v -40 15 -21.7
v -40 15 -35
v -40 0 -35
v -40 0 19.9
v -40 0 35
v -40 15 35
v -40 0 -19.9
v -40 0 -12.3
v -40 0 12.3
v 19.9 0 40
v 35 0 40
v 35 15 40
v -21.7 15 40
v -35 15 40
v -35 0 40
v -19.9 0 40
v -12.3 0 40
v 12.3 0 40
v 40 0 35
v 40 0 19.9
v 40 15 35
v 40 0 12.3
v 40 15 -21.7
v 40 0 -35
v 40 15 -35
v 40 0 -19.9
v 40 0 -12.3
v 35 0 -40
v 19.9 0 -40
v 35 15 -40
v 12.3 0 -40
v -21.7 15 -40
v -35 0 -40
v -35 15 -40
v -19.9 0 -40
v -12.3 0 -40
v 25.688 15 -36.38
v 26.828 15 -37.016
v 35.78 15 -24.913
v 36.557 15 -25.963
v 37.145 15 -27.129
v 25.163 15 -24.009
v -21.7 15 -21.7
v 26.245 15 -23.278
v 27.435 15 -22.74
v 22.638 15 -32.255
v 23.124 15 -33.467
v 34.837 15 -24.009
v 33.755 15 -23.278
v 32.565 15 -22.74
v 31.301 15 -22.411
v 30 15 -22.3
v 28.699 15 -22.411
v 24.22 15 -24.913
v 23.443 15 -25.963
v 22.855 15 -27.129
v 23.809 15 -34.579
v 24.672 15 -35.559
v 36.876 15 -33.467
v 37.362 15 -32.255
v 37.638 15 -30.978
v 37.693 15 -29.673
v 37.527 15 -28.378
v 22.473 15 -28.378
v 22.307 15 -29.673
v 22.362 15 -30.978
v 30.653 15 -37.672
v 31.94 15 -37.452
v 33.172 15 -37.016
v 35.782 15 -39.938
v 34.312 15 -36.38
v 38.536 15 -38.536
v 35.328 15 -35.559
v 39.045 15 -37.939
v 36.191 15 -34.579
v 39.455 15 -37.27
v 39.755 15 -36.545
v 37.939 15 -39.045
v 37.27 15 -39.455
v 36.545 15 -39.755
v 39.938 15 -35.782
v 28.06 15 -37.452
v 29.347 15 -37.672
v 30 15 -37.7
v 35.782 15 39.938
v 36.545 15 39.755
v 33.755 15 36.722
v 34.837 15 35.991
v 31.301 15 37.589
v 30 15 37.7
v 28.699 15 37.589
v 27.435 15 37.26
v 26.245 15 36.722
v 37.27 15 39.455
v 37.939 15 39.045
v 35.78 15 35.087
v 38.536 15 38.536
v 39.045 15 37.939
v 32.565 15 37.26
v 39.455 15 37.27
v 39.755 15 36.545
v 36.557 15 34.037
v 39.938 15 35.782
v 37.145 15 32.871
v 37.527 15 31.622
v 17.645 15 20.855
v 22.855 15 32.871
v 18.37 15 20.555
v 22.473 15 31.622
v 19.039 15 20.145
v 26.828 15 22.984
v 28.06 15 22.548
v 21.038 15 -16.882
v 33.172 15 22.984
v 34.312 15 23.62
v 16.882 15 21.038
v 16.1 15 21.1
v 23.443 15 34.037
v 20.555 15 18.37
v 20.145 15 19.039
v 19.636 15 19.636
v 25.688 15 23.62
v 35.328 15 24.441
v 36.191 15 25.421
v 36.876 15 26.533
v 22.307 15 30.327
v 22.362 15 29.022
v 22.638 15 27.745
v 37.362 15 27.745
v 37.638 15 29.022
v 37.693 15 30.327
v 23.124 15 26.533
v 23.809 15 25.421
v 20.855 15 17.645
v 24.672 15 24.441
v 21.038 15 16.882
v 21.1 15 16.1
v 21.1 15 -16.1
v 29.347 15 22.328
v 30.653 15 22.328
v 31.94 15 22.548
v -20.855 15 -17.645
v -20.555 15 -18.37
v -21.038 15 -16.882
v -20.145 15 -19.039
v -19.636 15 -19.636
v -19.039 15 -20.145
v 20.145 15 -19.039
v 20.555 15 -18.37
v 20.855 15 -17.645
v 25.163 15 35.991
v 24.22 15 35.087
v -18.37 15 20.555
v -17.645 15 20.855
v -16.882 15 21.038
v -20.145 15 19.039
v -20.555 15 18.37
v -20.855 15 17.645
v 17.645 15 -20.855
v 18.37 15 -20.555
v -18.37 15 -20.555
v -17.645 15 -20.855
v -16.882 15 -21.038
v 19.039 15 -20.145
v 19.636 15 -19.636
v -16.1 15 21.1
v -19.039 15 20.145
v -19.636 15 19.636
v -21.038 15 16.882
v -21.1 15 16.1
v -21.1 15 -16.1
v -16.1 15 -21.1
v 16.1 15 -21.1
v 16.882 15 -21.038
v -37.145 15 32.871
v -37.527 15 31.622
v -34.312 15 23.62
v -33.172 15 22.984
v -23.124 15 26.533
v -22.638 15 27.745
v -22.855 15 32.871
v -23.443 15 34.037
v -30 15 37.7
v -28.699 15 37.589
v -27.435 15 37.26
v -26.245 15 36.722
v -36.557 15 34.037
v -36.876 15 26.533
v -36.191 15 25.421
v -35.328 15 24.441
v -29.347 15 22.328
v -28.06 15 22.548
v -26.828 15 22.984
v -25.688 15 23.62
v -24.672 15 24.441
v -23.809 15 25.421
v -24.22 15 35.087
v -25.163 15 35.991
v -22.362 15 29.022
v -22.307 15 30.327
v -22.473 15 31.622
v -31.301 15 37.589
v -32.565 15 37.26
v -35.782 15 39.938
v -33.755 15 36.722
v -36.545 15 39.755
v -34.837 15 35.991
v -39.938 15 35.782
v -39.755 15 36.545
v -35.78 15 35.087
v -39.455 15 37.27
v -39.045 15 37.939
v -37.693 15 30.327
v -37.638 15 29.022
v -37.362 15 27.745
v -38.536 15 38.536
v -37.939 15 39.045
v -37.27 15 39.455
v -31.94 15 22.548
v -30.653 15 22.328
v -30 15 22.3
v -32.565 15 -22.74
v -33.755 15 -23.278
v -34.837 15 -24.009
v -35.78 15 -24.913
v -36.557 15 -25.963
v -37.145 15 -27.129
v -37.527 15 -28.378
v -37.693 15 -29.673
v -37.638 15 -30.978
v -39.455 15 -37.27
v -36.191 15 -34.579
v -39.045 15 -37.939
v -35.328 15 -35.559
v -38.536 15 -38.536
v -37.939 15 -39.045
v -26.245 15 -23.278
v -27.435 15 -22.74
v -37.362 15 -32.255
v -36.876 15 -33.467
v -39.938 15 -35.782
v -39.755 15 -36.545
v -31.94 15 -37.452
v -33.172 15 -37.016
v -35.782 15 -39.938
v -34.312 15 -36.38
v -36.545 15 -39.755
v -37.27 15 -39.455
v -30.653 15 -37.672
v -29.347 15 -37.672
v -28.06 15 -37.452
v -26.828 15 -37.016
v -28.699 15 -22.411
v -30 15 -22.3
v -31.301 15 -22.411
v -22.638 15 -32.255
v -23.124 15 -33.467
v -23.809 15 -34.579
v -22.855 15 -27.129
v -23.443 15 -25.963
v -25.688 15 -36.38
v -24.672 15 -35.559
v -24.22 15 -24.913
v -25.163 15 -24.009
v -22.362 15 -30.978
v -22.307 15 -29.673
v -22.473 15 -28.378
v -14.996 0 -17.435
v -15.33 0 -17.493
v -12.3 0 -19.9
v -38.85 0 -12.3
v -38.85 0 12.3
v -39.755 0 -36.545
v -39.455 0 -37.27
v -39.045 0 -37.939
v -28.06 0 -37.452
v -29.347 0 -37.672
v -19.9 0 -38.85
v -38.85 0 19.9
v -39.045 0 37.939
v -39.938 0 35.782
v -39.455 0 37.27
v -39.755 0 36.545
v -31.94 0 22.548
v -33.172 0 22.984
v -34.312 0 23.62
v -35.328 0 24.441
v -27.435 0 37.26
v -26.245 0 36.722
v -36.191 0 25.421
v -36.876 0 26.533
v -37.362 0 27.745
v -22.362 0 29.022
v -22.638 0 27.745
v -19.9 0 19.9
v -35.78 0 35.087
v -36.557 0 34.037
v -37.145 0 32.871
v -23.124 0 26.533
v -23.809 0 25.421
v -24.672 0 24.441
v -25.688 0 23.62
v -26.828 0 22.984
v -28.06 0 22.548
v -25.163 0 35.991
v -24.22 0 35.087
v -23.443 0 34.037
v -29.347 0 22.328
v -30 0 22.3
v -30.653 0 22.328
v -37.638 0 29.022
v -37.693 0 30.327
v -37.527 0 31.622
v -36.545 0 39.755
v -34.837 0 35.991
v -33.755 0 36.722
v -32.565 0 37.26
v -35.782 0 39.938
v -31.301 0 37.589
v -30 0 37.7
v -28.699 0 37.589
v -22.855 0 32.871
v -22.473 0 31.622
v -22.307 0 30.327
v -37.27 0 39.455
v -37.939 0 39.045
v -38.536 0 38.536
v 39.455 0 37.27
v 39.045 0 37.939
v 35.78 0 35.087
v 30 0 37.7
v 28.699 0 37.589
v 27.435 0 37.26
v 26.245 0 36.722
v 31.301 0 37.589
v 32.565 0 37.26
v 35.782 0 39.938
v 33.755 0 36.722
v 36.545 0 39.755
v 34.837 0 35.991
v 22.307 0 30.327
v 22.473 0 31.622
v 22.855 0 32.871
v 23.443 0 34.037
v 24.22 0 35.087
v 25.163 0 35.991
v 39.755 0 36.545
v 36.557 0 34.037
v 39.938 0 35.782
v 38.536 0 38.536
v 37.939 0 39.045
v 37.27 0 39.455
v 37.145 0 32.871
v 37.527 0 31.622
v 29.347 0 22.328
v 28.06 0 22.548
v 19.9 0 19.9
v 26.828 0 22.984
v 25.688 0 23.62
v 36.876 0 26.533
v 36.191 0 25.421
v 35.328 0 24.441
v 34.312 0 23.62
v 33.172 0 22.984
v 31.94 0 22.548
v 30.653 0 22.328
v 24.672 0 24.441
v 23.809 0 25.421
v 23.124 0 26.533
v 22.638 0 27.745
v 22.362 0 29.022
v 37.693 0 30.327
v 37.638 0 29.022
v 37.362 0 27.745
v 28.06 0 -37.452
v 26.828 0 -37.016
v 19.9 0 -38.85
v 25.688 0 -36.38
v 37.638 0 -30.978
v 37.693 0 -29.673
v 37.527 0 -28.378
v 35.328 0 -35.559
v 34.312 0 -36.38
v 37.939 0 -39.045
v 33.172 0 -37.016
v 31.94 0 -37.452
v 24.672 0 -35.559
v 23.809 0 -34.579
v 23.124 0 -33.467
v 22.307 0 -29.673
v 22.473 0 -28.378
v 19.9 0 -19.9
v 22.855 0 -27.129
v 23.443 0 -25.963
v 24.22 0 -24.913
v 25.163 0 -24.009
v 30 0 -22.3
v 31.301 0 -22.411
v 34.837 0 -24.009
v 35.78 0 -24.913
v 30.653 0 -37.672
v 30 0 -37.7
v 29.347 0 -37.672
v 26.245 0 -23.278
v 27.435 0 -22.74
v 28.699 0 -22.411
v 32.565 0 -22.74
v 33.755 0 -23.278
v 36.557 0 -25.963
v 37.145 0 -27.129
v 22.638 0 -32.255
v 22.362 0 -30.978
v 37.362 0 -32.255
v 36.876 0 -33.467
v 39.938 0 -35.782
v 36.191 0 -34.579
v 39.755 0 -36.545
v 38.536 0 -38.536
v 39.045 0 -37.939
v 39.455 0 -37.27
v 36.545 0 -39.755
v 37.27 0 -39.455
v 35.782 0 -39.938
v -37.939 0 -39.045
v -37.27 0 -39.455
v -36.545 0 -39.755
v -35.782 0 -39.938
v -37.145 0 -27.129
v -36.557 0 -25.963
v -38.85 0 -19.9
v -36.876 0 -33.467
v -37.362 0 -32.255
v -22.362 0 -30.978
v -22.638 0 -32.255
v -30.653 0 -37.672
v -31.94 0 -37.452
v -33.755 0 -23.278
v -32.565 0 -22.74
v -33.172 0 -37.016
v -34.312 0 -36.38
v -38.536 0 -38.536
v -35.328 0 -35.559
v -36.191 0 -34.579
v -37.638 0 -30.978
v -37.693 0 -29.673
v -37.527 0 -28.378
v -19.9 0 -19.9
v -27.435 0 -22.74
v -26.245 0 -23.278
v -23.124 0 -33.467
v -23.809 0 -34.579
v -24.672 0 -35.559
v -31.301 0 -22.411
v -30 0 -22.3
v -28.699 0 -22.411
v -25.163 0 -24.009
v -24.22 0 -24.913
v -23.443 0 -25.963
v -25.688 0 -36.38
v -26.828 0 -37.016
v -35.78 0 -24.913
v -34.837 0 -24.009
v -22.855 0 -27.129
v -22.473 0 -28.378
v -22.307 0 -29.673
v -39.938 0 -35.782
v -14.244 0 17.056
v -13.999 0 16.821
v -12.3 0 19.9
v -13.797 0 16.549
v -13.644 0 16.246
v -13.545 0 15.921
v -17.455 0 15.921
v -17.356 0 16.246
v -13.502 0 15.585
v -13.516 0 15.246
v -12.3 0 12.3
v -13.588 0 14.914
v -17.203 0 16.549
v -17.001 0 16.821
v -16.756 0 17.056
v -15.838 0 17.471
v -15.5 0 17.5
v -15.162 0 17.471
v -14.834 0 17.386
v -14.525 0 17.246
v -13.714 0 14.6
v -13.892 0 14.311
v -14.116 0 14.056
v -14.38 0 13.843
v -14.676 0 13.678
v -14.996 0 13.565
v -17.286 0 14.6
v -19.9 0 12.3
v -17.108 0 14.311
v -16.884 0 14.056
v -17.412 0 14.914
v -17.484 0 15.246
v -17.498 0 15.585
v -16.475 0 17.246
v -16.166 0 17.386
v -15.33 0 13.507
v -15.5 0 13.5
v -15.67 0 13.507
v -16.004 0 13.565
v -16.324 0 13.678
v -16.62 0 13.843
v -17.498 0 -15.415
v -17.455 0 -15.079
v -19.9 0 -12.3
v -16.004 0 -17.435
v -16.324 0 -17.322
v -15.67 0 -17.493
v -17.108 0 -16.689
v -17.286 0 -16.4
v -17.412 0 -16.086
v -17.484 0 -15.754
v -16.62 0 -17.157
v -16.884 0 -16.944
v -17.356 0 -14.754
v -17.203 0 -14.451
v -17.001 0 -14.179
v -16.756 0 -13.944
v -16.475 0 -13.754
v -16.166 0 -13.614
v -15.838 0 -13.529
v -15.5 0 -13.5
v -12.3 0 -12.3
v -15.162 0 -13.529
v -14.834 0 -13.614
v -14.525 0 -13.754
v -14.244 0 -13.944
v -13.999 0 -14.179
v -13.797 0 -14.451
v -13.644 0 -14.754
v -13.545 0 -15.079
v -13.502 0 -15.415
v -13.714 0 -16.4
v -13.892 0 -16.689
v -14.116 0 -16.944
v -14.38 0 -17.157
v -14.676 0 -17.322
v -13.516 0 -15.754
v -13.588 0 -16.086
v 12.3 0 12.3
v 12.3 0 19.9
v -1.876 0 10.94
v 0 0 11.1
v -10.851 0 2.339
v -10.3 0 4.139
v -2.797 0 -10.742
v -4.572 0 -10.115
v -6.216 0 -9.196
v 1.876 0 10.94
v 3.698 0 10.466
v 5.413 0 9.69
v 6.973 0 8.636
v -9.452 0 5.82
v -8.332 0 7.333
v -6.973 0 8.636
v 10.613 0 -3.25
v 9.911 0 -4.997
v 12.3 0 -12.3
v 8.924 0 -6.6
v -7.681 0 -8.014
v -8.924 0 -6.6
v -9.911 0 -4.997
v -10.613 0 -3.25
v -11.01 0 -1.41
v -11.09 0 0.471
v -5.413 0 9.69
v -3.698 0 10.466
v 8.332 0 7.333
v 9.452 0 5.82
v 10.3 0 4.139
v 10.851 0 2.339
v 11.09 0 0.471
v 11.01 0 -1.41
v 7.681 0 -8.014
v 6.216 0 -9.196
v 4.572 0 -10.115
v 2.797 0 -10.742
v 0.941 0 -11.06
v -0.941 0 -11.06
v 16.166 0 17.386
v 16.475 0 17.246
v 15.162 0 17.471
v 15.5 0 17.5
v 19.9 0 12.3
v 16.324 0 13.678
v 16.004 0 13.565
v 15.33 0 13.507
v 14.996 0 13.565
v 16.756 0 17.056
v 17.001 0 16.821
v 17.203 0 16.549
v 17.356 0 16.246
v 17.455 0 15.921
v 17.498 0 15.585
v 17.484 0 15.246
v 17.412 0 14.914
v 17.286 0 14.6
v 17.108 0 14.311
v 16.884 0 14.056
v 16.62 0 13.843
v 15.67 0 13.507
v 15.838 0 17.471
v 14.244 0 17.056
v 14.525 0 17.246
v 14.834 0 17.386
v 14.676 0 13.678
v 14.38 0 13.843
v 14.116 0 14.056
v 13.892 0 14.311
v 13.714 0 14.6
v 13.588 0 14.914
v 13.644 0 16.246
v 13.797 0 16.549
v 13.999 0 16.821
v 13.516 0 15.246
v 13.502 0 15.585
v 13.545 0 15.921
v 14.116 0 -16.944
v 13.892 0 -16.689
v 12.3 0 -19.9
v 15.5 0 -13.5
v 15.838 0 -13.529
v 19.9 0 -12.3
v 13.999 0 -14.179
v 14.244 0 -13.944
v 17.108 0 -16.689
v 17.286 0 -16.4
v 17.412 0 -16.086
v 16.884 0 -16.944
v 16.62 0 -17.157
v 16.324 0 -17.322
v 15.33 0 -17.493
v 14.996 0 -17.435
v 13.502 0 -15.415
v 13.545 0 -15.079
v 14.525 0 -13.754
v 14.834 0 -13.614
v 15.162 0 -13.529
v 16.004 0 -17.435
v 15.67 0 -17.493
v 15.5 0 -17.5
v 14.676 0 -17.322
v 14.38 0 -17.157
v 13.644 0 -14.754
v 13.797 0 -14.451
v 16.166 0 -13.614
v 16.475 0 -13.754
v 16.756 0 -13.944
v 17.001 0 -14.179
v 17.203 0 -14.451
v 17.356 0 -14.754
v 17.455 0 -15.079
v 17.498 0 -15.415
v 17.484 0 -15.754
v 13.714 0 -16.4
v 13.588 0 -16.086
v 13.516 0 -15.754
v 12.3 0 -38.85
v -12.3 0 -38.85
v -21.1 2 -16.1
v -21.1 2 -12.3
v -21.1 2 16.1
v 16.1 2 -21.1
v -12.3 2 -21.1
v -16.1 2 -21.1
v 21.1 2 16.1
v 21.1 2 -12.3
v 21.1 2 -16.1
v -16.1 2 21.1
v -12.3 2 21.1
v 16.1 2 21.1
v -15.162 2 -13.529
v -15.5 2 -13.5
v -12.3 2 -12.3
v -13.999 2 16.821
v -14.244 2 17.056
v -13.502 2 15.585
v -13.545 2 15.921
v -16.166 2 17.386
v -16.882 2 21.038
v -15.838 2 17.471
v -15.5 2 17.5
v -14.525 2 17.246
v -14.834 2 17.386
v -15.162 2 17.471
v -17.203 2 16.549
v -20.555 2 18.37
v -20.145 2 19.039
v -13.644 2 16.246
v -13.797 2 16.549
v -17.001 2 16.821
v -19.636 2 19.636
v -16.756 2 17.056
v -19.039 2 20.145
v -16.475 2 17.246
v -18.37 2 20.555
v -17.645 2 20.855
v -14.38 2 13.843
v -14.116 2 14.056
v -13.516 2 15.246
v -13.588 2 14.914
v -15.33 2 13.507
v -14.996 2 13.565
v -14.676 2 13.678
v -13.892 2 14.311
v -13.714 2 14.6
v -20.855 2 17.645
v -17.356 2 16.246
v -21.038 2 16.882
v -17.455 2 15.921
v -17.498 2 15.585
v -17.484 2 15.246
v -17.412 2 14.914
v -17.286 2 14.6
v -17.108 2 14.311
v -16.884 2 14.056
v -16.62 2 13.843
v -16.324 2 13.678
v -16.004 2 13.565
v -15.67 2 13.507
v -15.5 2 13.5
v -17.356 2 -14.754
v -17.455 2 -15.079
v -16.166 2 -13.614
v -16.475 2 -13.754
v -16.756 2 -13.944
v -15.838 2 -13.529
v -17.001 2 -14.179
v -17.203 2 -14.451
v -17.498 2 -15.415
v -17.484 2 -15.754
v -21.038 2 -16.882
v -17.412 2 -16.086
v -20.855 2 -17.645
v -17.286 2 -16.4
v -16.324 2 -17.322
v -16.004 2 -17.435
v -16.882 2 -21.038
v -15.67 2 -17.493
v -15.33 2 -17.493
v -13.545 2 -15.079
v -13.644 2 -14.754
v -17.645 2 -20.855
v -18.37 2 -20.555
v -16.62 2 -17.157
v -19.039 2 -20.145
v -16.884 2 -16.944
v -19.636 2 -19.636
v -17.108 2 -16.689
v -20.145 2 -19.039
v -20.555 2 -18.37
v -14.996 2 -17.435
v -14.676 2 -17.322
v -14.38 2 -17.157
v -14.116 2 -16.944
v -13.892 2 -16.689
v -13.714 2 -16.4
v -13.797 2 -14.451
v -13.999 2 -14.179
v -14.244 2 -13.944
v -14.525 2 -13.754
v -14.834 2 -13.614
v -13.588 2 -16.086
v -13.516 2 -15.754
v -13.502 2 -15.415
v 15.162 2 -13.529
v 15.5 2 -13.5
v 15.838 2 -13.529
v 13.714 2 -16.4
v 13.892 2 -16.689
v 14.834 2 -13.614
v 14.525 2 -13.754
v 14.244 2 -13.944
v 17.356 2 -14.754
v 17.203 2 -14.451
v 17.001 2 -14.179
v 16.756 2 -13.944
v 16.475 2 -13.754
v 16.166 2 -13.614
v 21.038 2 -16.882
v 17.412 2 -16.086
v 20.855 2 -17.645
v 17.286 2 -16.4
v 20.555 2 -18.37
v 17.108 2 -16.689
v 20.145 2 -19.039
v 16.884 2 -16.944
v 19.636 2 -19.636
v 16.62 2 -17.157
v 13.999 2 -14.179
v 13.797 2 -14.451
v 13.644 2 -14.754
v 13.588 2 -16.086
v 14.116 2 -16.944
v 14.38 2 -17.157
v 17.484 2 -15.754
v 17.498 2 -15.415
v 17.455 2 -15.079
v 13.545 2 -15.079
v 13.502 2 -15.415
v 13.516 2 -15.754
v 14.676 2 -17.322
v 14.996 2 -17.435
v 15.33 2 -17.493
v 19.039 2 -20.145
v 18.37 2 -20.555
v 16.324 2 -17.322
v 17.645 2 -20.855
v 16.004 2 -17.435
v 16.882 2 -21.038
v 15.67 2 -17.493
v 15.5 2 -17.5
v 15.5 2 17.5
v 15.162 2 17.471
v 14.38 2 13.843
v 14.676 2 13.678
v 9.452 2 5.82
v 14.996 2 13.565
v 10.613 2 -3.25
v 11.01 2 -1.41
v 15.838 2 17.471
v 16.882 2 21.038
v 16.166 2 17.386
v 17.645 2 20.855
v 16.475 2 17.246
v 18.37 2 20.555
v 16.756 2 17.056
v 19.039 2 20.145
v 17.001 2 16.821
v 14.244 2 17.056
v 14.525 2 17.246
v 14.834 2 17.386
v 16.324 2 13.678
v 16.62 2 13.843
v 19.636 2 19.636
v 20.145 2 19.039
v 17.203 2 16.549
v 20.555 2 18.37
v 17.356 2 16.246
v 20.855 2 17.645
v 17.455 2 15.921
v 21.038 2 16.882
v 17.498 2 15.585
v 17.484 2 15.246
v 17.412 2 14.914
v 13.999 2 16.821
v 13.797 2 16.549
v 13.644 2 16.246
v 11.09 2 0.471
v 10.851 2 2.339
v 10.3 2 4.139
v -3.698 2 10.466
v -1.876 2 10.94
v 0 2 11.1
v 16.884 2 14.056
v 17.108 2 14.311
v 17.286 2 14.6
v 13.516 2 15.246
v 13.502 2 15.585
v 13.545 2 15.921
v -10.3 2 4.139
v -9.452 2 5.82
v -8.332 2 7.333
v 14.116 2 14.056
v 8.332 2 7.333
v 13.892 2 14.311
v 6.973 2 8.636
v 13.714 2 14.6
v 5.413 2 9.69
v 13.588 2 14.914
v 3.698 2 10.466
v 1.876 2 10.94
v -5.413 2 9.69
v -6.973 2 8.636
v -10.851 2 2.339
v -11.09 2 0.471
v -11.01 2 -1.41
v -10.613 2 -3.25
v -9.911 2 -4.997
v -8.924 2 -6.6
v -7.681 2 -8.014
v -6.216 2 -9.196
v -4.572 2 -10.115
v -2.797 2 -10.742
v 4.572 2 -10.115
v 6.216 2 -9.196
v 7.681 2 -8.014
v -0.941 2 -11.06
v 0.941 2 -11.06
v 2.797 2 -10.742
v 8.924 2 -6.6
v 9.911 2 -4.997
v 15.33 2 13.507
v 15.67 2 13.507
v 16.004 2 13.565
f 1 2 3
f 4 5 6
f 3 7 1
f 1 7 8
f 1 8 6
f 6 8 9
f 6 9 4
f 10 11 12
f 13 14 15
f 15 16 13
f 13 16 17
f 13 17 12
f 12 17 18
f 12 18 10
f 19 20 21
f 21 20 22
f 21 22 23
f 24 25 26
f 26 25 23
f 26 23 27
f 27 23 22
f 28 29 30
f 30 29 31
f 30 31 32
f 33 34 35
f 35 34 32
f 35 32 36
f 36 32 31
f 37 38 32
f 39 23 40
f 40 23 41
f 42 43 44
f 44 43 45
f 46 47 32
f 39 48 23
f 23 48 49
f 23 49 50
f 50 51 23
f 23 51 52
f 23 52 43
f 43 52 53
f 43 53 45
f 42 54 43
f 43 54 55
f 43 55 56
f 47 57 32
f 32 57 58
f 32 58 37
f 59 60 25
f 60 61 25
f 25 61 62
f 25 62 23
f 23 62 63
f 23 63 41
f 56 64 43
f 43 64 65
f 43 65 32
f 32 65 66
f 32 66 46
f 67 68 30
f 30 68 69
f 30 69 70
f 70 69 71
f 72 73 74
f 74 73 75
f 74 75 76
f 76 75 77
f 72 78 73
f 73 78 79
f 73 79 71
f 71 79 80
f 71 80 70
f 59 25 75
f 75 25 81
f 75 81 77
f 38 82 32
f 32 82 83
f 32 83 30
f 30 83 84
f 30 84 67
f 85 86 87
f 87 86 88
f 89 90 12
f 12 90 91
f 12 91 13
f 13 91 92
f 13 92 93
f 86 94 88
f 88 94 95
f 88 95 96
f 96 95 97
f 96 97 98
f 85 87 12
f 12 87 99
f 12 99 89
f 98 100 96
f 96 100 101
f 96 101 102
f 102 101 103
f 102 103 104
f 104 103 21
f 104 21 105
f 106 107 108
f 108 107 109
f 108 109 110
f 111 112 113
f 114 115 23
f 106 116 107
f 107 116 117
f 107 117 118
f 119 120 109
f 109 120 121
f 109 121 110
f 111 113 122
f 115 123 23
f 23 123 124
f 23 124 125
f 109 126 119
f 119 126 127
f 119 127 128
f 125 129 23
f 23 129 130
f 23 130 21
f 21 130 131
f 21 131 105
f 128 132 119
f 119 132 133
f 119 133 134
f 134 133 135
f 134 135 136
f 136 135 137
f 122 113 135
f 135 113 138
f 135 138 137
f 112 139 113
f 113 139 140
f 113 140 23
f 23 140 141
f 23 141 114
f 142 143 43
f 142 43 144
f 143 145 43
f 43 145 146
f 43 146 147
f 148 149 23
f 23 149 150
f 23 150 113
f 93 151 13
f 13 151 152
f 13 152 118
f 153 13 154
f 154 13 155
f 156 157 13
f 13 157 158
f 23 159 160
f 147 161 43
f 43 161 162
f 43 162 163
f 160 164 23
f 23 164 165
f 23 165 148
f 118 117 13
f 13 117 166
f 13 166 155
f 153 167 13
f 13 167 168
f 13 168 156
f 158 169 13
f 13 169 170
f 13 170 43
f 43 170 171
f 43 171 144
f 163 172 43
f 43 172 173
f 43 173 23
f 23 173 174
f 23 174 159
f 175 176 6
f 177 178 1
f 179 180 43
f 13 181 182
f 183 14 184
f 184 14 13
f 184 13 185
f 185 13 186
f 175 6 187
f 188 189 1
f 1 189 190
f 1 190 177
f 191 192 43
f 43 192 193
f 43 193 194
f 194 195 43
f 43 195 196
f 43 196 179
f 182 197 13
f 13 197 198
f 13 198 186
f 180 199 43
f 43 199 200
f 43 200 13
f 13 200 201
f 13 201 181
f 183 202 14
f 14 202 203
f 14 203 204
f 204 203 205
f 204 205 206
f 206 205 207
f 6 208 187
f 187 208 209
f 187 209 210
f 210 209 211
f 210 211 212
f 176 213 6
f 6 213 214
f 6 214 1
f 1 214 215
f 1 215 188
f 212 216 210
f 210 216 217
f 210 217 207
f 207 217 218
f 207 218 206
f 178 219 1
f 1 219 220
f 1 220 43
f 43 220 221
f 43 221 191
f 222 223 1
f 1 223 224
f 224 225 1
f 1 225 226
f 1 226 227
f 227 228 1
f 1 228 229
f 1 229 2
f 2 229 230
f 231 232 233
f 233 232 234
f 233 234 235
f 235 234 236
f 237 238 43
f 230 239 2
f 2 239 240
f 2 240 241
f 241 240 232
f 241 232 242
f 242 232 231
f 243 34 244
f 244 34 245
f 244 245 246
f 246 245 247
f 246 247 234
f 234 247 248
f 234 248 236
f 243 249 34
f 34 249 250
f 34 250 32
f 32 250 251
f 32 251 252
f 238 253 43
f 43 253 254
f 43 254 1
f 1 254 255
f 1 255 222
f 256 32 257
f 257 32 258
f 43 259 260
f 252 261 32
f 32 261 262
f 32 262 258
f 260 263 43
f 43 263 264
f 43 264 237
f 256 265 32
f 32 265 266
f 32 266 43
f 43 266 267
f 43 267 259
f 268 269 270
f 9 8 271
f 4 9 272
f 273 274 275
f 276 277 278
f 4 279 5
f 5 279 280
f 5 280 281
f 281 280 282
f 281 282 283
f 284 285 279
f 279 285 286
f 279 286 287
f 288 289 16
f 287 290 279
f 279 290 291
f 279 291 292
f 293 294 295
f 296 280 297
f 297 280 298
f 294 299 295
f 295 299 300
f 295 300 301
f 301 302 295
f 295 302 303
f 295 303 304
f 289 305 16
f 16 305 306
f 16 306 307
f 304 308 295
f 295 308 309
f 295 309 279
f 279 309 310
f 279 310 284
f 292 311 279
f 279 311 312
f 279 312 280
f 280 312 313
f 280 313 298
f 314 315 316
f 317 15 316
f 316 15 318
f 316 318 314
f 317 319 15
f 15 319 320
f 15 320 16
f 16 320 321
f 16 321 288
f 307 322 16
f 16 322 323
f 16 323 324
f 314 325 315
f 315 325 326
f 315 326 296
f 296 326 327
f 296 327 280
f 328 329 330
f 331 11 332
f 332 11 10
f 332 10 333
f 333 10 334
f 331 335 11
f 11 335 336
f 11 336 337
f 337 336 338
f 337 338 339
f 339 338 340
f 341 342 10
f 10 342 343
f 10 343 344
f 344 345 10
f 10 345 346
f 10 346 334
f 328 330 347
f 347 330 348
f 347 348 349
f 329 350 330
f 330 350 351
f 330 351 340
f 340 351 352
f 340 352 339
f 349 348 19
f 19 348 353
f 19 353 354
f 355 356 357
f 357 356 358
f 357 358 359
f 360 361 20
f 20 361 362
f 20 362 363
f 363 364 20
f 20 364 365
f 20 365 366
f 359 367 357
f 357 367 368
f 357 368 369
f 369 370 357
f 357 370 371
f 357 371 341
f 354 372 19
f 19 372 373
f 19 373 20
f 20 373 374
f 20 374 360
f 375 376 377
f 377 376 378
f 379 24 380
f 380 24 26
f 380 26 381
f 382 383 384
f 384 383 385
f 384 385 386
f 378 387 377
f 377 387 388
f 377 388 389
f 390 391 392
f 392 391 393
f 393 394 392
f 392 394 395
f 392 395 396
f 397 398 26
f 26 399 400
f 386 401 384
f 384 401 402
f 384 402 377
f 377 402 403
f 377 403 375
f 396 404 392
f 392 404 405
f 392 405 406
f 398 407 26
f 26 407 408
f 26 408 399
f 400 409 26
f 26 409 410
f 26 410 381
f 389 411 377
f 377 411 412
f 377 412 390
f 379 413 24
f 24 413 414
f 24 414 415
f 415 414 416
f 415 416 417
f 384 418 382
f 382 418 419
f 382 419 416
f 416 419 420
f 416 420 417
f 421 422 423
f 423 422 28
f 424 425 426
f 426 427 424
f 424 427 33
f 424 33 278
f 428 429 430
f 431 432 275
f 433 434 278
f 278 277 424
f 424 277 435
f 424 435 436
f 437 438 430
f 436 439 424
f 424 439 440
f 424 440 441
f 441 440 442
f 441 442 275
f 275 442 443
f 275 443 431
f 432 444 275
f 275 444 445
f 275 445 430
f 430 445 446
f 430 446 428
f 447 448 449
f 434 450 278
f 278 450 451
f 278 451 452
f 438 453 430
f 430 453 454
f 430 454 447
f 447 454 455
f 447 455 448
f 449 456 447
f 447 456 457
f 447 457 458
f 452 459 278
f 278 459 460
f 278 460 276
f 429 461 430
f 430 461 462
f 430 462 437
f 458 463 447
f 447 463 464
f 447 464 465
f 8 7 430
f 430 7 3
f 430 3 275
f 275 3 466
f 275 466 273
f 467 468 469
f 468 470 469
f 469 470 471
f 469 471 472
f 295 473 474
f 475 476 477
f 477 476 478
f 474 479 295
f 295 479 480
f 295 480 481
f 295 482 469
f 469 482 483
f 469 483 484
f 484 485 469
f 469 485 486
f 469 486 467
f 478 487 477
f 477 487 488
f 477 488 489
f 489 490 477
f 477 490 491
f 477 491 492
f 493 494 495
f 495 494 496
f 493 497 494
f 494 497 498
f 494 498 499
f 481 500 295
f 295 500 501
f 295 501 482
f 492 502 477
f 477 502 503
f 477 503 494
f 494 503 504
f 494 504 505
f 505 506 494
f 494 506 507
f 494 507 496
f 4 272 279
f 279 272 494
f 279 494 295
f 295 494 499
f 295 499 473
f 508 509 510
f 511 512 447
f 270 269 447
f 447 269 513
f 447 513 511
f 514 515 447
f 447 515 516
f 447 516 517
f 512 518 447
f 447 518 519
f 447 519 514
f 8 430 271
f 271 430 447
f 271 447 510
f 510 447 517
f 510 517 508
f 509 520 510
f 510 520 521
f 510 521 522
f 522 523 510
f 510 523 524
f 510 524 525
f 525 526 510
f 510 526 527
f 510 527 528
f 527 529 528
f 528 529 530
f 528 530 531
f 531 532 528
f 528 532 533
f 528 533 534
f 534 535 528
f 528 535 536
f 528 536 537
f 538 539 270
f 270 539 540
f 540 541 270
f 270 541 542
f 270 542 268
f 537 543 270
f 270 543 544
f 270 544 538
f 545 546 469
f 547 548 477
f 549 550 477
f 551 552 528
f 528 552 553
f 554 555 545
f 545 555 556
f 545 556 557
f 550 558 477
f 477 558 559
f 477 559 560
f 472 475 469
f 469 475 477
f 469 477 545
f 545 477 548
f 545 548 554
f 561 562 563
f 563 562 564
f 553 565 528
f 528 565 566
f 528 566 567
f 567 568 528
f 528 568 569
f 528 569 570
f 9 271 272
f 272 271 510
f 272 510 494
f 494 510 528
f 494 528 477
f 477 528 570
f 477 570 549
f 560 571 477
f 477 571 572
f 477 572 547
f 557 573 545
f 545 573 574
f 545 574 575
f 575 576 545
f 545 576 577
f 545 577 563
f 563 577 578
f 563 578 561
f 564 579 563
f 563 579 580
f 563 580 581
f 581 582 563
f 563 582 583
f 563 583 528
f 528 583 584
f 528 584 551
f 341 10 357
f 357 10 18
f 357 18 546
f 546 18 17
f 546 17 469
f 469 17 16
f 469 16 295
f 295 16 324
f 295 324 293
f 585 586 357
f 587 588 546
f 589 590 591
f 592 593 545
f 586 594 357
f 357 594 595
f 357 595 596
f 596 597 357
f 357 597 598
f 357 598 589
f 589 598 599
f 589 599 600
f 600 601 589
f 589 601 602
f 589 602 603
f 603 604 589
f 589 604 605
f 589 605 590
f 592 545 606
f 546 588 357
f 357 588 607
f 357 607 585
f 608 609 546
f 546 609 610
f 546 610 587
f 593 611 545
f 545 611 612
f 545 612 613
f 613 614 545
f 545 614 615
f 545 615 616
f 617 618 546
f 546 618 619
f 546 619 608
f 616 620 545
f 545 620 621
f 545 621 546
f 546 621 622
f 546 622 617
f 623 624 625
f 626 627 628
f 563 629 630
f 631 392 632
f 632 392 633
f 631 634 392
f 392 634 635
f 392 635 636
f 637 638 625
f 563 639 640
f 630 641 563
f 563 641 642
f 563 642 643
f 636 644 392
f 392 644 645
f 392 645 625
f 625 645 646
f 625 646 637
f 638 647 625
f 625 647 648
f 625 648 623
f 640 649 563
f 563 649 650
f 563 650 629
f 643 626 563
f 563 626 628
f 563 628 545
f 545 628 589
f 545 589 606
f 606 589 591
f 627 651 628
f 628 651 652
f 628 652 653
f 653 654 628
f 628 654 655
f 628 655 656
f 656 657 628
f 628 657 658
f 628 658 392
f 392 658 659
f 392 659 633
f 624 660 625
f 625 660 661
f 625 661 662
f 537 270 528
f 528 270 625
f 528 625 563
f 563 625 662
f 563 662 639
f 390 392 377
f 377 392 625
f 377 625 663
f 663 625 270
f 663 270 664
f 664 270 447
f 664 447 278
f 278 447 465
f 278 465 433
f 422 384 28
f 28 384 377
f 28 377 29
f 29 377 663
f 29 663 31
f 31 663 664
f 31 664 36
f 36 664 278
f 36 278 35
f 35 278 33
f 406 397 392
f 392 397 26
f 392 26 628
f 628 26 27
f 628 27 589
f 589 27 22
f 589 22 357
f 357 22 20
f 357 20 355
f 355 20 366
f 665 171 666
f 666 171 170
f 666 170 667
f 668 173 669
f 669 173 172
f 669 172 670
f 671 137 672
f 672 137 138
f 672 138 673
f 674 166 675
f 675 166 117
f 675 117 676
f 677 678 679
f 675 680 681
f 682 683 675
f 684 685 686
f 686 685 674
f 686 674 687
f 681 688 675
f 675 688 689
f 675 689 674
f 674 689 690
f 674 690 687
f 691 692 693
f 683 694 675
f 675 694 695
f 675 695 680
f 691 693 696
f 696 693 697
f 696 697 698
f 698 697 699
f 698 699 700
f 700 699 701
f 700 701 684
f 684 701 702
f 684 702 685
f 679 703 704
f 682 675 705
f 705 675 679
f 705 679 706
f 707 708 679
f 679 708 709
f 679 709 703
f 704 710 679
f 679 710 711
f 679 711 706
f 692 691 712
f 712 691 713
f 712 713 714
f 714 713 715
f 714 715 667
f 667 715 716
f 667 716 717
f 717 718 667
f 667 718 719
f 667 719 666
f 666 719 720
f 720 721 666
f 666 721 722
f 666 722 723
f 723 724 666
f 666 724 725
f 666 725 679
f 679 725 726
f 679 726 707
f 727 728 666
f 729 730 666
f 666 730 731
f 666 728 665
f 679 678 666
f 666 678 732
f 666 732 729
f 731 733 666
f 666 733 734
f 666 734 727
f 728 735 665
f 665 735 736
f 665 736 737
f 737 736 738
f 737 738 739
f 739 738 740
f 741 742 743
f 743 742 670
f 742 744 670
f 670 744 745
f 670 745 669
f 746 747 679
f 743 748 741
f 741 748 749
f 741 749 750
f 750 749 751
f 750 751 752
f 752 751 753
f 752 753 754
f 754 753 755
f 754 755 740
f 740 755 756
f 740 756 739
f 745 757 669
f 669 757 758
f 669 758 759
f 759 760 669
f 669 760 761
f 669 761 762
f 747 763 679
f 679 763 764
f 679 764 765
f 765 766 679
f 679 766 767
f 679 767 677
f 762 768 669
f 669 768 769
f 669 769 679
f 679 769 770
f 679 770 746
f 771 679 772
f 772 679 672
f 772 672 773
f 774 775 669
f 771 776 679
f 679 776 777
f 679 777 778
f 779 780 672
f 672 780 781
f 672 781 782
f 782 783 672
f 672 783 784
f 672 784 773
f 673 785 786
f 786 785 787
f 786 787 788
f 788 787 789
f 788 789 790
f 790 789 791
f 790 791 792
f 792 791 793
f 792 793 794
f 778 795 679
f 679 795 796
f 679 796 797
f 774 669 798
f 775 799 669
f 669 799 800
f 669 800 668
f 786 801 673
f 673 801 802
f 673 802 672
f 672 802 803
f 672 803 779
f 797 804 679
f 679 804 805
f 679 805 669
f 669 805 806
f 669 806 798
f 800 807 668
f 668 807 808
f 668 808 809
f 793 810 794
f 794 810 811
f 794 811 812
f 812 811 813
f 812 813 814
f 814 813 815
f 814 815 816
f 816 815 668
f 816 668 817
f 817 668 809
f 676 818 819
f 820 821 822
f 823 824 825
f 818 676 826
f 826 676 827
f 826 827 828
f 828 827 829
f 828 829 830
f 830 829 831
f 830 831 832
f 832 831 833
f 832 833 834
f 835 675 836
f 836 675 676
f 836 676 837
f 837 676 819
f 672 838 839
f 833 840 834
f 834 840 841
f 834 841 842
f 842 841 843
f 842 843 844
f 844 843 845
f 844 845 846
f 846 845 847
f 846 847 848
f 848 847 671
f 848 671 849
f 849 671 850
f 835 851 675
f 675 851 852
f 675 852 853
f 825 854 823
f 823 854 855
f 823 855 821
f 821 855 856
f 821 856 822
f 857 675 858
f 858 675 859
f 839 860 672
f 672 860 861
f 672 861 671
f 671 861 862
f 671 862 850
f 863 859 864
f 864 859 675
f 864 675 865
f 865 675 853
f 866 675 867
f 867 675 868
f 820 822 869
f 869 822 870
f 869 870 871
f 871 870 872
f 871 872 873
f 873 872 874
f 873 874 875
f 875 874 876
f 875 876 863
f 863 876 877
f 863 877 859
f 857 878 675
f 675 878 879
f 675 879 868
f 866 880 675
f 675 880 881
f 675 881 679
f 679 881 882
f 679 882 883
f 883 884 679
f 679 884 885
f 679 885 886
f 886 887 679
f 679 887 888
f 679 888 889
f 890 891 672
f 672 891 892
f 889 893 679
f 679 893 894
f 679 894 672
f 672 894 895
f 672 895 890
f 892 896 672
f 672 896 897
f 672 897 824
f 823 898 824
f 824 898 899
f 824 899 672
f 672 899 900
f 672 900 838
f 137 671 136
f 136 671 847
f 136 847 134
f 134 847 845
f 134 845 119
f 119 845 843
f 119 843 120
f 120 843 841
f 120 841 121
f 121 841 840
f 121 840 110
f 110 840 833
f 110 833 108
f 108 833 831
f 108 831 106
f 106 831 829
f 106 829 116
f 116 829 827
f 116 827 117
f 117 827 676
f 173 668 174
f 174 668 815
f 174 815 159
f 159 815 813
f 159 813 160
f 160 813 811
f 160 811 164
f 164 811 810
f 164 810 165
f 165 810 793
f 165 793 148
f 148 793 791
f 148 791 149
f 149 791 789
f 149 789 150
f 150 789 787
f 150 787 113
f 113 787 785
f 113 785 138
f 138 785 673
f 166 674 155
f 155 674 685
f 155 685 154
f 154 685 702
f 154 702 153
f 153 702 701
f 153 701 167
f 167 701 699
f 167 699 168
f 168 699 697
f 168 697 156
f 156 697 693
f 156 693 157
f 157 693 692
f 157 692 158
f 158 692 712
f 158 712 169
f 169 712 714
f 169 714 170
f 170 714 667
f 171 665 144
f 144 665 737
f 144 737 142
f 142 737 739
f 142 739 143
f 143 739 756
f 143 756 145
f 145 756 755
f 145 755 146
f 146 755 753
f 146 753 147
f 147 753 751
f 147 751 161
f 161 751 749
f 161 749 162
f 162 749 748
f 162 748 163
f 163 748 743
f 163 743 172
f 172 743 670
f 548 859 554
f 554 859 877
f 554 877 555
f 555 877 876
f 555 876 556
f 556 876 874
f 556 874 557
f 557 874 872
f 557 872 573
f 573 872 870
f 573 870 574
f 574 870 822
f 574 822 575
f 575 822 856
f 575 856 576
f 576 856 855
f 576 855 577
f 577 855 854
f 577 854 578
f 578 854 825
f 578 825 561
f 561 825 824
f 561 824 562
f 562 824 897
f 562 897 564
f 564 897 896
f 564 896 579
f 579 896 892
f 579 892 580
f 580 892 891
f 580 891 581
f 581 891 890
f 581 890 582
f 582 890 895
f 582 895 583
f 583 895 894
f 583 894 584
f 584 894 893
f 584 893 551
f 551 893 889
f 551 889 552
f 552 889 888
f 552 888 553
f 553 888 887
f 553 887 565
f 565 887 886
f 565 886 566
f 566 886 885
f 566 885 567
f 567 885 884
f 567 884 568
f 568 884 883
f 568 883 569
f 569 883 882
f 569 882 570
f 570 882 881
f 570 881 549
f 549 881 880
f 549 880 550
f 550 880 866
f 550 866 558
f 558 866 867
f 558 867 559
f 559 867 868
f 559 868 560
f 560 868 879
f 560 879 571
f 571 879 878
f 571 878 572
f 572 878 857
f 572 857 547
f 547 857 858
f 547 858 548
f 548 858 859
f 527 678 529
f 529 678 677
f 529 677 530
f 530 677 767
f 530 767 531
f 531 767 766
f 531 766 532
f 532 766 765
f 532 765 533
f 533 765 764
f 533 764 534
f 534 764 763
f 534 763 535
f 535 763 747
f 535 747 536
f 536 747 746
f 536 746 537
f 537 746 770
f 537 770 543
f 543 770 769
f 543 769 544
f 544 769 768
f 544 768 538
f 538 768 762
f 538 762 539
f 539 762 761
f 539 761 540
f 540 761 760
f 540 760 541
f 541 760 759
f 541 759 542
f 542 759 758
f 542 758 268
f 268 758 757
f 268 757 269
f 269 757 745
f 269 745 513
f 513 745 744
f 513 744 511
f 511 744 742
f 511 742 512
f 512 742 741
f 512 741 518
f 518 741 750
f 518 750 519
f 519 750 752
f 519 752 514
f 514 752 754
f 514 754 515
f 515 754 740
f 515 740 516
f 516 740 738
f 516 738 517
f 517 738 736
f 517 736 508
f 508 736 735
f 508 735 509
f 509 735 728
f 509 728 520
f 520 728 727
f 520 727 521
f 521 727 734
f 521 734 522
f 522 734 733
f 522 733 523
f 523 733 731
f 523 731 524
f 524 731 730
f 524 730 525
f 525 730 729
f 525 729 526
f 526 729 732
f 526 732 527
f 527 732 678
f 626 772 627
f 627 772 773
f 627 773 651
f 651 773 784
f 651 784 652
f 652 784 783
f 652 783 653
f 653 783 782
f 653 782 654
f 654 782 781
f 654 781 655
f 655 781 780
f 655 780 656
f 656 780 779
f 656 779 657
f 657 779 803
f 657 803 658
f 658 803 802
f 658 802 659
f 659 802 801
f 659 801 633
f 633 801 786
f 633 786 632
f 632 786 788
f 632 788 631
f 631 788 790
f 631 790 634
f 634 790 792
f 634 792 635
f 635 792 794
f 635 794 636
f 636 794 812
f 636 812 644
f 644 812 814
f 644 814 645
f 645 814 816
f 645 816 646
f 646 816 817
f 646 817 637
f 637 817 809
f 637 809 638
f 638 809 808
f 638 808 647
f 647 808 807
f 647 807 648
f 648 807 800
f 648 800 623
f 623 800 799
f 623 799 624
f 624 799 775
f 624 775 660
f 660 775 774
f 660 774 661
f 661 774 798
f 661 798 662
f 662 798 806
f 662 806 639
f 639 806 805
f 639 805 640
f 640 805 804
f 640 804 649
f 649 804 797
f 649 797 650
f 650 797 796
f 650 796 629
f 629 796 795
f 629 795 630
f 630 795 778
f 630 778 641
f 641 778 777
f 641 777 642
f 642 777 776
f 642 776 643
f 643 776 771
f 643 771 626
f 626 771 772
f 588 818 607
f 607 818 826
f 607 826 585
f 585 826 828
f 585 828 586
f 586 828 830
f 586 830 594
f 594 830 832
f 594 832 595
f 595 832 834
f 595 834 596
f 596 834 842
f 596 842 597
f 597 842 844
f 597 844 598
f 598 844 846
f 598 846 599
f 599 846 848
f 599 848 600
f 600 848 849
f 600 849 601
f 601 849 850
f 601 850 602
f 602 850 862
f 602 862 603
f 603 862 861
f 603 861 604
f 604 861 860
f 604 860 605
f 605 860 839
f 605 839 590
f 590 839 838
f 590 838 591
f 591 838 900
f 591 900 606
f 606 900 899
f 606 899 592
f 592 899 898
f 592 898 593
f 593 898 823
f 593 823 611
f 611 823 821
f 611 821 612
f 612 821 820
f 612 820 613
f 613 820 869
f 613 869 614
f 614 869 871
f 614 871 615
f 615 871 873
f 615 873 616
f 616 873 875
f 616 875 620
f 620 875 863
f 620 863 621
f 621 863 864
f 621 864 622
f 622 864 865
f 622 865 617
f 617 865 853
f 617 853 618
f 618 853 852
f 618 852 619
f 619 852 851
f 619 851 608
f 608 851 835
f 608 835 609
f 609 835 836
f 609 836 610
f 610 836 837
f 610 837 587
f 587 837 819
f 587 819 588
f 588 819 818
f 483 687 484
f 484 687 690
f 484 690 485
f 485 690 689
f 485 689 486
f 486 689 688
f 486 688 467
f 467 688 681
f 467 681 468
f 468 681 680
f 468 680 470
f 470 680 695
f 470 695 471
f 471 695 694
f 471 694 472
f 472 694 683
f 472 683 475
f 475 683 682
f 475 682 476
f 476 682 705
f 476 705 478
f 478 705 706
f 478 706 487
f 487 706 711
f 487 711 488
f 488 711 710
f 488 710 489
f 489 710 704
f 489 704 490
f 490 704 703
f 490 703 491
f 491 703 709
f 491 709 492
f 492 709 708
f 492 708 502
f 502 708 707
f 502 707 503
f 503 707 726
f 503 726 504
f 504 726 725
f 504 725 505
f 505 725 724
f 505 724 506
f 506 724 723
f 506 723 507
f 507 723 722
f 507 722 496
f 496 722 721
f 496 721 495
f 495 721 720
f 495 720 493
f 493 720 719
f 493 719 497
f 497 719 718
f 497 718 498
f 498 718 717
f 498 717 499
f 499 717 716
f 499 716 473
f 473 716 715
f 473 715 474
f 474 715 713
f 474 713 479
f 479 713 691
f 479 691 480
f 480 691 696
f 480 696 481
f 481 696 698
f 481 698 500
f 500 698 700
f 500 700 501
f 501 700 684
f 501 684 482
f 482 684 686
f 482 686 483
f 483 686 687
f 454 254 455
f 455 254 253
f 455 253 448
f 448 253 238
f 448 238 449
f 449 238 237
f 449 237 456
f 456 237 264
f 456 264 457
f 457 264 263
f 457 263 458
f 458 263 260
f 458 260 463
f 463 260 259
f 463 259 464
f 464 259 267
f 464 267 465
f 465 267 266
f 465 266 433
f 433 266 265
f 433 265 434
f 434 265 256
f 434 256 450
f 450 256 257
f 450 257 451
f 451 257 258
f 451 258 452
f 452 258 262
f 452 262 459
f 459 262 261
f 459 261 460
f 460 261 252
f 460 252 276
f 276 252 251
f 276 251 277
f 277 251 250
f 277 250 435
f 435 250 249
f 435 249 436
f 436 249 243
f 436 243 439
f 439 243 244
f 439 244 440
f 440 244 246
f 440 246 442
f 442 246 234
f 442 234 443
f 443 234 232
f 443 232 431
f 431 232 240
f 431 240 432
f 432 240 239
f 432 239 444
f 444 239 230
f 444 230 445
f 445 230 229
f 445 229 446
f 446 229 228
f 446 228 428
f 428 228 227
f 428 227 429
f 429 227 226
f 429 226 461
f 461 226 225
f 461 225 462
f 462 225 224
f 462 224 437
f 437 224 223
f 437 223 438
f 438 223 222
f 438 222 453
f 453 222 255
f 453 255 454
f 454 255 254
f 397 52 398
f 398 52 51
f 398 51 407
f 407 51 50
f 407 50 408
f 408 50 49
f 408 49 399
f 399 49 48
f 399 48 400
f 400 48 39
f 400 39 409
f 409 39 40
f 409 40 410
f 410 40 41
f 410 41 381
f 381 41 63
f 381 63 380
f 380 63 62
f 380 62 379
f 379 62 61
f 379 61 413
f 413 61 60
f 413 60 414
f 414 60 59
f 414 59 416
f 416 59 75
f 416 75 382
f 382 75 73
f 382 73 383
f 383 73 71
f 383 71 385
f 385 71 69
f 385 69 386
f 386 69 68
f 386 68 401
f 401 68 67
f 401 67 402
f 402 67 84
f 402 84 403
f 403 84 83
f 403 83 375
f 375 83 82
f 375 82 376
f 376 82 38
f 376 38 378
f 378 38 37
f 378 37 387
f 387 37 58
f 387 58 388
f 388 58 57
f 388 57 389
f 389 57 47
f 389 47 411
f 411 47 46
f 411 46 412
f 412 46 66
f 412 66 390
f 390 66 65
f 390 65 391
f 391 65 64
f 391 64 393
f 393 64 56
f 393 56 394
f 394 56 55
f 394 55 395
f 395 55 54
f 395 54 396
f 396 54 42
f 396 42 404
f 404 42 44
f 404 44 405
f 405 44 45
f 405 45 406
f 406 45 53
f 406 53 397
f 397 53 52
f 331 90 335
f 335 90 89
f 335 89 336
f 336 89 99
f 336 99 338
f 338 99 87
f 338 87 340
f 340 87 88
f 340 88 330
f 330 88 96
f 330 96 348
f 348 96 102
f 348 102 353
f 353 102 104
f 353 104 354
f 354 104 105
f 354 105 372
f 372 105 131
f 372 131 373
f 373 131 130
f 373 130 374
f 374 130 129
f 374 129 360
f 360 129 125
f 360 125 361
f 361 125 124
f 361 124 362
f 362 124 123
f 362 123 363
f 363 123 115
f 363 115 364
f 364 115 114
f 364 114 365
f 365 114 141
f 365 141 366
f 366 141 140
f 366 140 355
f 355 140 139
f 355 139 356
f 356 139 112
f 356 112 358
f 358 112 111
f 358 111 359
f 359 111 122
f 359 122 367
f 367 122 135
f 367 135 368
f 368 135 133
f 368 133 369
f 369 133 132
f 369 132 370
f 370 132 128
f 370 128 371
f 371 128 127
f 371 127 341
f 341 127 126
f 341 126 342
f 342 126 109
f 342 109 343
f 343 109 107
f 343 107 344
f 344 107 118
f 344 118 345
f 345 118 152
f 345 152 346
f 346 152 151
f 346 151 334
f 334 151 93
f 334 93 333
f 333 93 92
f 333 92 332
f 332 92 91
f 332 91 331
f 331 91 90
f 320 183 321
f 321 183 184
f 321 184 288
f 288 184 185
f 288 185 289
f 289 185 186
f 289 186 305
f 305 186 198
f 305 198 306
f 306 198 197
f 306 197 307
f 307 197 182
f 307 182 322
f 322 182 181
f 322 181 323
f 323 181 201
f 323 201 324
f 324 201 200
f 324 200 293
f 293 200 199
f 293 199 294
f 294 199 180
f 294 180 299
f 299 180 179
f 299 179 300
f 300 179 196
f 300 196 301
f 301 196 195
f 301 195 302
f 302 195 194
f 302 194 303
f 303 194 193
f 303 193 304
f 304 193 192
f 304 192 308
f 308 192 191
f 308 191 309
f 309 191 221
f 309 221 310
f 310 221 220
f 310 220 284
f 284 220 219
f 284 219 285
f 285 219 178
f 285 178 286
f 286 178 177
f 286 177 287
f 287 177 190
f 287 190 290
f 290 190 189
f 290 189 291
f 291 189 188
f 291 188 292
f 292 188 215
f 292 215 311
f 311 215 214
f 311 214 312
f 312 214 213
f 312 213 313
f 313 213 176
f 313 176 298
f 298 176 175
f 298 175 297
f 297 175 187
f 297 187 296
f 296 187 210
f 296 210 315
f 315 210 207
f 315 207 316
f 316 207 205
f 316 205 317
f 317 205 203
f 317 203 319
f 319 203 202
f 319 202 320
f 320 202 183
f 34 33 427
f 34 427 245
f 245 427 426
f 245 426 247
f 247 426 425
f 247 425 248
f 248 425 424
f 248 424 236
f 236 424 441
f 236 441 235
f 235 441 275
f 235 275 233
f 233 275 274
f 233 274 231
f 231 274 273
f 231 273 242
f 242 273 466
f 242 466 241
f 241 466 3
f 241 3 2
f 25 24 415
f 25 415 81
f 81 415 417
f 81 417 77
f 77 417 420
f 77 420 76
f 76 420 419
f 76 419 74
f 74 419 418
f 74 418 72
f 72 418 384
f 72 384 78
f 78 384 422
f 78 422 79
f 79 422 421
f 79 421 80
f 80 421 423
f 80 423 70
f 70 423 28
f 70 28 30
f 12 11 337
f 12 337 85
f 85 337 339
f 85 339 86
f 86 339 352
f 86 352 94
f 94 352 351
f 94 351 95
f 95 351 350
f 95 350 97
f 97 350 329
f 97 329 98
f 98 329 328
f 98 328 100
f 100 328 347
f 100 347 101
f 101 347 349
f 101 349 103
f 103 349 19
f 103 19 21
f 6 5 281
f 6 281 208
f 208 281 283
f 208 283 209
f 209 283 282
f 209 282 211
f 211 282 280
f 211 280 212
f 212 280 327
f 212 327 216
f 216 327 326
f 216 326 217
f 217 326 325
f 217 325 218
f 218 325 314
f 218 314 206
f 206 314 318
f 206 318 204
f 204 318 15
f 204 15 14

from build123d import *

# Parameters (mm, degrees)
ESBO_O1_W                = 80
ESBO_O1_H                = 80
RESSALTO_EXTRUS_O1_DEPTH = 15
ESBO_O2_W                = 42.2
ESBO_O2_H                = 42.2
CORTE_EXTRUS_O1_DEPTH    = 13
FILETE1_R                = 5
ESBO_O3_R                = 11.1
ESBO_O3_R_2              = 2
CORTE_EXTRUS_O2_DEPTH    = 3
ESBO_O4_R                = 7.7
CORTE_EXTRUS_O3_DEPTH    = 16
FILETE2_R                = 5


with BuildPart() as part:
    # Esboço1 → Ressalto-extrusão1 (new body)
    with BuildSketch(Plane(origin=(0, 0, 0), x_dir=(1, 0, 0), z_dir=(0, 1, 0))):
        Rectangle(ESBO_O1_W, ESBO_O1_H)
    extrude(amount=RESSALTO_EXTRUS_O1_DEPTH)

    # Esboço2 → Corte-extrusão1 (cut)
    with BuildSketch(Plane(origin=(0, 15, 0), x_dir=(1, 0, 0), z_dir=(0, 1, 0))):
        Rectangle(ESBO_O2_W, ESBO_O2_H)
    extrude(amount=-CORTE_EXTRUS_O1_DEPTH, mode=Mode.SUBTRACT)

    # Filete1
    filete1_edges = [part.edges().sort_by_distance(p)[0] for p in [
        (-21.1, 8.5, 21.1),
        (-21.1, 8.5, -21.1),
        (21.1, 8.5, -21.1),
        (21.1, 8.5, 21.1),
    ]]
    fillet(filete1_edges, radius=FILETE1_R)

    # Esboço3 → Corte-extrusão2 (cut, through all)
    with BuildSketch(Plane(origin=(0, 2, 0), x_dir=(1, 0, 0), z_dir=(0, 1, 0))):
        Circle(ESBO_O3_R)
        with Locations((-15.5, 15.5)):
            Circle(ESBO_O3_R_2)
        with Locations((15.5, 15.5)):
            Circle(ESBO_O3_R_2)
        with Locations((15.5, -15.5)):
            Circle(ESBO_O3_R_2)
        with Locations((-15.5, -15.5)):
            Circle(ESBO_O3_R_2)
    extrude(amount=-CORTE_EXTRUS_O2_DEPTH, mode=Mode.SUBTRACT)

    # Esboço4 → Corte-extrusão3 (cut, through all)
    with BuildSketch(Plane(origin=(0, 15, 0), x_dir=(1, 0, 0), z_dir=(0, 1, 0))):
        with Locations((-30, 30)):
            Circle(ESBO_O4_R)
        with Locations((30, 30)):
            Circle(ESBO_O4_R)
        with Locations((30, -30)):
            Circle(ESBO_O4_R)
        with Locations((-30, -30)):
            Circle(ESBO_O4_R)
    extrude(amount=-CORTE_EXTRUS_O3_DEPTH, mode=Mode.SUBTRACT)

    # Filete2
    filete2_edges = [part.edges().sort_by_distance(p)[0] for p in [
        (-40, 7.5, -40),
        (40, 7.5, -40),
        (40, 7.5, 40),
        (-40, 7.5, 40),
    ]]
    fillet(filete2_edges, radius=FILETE2_R)


solid = part.part
